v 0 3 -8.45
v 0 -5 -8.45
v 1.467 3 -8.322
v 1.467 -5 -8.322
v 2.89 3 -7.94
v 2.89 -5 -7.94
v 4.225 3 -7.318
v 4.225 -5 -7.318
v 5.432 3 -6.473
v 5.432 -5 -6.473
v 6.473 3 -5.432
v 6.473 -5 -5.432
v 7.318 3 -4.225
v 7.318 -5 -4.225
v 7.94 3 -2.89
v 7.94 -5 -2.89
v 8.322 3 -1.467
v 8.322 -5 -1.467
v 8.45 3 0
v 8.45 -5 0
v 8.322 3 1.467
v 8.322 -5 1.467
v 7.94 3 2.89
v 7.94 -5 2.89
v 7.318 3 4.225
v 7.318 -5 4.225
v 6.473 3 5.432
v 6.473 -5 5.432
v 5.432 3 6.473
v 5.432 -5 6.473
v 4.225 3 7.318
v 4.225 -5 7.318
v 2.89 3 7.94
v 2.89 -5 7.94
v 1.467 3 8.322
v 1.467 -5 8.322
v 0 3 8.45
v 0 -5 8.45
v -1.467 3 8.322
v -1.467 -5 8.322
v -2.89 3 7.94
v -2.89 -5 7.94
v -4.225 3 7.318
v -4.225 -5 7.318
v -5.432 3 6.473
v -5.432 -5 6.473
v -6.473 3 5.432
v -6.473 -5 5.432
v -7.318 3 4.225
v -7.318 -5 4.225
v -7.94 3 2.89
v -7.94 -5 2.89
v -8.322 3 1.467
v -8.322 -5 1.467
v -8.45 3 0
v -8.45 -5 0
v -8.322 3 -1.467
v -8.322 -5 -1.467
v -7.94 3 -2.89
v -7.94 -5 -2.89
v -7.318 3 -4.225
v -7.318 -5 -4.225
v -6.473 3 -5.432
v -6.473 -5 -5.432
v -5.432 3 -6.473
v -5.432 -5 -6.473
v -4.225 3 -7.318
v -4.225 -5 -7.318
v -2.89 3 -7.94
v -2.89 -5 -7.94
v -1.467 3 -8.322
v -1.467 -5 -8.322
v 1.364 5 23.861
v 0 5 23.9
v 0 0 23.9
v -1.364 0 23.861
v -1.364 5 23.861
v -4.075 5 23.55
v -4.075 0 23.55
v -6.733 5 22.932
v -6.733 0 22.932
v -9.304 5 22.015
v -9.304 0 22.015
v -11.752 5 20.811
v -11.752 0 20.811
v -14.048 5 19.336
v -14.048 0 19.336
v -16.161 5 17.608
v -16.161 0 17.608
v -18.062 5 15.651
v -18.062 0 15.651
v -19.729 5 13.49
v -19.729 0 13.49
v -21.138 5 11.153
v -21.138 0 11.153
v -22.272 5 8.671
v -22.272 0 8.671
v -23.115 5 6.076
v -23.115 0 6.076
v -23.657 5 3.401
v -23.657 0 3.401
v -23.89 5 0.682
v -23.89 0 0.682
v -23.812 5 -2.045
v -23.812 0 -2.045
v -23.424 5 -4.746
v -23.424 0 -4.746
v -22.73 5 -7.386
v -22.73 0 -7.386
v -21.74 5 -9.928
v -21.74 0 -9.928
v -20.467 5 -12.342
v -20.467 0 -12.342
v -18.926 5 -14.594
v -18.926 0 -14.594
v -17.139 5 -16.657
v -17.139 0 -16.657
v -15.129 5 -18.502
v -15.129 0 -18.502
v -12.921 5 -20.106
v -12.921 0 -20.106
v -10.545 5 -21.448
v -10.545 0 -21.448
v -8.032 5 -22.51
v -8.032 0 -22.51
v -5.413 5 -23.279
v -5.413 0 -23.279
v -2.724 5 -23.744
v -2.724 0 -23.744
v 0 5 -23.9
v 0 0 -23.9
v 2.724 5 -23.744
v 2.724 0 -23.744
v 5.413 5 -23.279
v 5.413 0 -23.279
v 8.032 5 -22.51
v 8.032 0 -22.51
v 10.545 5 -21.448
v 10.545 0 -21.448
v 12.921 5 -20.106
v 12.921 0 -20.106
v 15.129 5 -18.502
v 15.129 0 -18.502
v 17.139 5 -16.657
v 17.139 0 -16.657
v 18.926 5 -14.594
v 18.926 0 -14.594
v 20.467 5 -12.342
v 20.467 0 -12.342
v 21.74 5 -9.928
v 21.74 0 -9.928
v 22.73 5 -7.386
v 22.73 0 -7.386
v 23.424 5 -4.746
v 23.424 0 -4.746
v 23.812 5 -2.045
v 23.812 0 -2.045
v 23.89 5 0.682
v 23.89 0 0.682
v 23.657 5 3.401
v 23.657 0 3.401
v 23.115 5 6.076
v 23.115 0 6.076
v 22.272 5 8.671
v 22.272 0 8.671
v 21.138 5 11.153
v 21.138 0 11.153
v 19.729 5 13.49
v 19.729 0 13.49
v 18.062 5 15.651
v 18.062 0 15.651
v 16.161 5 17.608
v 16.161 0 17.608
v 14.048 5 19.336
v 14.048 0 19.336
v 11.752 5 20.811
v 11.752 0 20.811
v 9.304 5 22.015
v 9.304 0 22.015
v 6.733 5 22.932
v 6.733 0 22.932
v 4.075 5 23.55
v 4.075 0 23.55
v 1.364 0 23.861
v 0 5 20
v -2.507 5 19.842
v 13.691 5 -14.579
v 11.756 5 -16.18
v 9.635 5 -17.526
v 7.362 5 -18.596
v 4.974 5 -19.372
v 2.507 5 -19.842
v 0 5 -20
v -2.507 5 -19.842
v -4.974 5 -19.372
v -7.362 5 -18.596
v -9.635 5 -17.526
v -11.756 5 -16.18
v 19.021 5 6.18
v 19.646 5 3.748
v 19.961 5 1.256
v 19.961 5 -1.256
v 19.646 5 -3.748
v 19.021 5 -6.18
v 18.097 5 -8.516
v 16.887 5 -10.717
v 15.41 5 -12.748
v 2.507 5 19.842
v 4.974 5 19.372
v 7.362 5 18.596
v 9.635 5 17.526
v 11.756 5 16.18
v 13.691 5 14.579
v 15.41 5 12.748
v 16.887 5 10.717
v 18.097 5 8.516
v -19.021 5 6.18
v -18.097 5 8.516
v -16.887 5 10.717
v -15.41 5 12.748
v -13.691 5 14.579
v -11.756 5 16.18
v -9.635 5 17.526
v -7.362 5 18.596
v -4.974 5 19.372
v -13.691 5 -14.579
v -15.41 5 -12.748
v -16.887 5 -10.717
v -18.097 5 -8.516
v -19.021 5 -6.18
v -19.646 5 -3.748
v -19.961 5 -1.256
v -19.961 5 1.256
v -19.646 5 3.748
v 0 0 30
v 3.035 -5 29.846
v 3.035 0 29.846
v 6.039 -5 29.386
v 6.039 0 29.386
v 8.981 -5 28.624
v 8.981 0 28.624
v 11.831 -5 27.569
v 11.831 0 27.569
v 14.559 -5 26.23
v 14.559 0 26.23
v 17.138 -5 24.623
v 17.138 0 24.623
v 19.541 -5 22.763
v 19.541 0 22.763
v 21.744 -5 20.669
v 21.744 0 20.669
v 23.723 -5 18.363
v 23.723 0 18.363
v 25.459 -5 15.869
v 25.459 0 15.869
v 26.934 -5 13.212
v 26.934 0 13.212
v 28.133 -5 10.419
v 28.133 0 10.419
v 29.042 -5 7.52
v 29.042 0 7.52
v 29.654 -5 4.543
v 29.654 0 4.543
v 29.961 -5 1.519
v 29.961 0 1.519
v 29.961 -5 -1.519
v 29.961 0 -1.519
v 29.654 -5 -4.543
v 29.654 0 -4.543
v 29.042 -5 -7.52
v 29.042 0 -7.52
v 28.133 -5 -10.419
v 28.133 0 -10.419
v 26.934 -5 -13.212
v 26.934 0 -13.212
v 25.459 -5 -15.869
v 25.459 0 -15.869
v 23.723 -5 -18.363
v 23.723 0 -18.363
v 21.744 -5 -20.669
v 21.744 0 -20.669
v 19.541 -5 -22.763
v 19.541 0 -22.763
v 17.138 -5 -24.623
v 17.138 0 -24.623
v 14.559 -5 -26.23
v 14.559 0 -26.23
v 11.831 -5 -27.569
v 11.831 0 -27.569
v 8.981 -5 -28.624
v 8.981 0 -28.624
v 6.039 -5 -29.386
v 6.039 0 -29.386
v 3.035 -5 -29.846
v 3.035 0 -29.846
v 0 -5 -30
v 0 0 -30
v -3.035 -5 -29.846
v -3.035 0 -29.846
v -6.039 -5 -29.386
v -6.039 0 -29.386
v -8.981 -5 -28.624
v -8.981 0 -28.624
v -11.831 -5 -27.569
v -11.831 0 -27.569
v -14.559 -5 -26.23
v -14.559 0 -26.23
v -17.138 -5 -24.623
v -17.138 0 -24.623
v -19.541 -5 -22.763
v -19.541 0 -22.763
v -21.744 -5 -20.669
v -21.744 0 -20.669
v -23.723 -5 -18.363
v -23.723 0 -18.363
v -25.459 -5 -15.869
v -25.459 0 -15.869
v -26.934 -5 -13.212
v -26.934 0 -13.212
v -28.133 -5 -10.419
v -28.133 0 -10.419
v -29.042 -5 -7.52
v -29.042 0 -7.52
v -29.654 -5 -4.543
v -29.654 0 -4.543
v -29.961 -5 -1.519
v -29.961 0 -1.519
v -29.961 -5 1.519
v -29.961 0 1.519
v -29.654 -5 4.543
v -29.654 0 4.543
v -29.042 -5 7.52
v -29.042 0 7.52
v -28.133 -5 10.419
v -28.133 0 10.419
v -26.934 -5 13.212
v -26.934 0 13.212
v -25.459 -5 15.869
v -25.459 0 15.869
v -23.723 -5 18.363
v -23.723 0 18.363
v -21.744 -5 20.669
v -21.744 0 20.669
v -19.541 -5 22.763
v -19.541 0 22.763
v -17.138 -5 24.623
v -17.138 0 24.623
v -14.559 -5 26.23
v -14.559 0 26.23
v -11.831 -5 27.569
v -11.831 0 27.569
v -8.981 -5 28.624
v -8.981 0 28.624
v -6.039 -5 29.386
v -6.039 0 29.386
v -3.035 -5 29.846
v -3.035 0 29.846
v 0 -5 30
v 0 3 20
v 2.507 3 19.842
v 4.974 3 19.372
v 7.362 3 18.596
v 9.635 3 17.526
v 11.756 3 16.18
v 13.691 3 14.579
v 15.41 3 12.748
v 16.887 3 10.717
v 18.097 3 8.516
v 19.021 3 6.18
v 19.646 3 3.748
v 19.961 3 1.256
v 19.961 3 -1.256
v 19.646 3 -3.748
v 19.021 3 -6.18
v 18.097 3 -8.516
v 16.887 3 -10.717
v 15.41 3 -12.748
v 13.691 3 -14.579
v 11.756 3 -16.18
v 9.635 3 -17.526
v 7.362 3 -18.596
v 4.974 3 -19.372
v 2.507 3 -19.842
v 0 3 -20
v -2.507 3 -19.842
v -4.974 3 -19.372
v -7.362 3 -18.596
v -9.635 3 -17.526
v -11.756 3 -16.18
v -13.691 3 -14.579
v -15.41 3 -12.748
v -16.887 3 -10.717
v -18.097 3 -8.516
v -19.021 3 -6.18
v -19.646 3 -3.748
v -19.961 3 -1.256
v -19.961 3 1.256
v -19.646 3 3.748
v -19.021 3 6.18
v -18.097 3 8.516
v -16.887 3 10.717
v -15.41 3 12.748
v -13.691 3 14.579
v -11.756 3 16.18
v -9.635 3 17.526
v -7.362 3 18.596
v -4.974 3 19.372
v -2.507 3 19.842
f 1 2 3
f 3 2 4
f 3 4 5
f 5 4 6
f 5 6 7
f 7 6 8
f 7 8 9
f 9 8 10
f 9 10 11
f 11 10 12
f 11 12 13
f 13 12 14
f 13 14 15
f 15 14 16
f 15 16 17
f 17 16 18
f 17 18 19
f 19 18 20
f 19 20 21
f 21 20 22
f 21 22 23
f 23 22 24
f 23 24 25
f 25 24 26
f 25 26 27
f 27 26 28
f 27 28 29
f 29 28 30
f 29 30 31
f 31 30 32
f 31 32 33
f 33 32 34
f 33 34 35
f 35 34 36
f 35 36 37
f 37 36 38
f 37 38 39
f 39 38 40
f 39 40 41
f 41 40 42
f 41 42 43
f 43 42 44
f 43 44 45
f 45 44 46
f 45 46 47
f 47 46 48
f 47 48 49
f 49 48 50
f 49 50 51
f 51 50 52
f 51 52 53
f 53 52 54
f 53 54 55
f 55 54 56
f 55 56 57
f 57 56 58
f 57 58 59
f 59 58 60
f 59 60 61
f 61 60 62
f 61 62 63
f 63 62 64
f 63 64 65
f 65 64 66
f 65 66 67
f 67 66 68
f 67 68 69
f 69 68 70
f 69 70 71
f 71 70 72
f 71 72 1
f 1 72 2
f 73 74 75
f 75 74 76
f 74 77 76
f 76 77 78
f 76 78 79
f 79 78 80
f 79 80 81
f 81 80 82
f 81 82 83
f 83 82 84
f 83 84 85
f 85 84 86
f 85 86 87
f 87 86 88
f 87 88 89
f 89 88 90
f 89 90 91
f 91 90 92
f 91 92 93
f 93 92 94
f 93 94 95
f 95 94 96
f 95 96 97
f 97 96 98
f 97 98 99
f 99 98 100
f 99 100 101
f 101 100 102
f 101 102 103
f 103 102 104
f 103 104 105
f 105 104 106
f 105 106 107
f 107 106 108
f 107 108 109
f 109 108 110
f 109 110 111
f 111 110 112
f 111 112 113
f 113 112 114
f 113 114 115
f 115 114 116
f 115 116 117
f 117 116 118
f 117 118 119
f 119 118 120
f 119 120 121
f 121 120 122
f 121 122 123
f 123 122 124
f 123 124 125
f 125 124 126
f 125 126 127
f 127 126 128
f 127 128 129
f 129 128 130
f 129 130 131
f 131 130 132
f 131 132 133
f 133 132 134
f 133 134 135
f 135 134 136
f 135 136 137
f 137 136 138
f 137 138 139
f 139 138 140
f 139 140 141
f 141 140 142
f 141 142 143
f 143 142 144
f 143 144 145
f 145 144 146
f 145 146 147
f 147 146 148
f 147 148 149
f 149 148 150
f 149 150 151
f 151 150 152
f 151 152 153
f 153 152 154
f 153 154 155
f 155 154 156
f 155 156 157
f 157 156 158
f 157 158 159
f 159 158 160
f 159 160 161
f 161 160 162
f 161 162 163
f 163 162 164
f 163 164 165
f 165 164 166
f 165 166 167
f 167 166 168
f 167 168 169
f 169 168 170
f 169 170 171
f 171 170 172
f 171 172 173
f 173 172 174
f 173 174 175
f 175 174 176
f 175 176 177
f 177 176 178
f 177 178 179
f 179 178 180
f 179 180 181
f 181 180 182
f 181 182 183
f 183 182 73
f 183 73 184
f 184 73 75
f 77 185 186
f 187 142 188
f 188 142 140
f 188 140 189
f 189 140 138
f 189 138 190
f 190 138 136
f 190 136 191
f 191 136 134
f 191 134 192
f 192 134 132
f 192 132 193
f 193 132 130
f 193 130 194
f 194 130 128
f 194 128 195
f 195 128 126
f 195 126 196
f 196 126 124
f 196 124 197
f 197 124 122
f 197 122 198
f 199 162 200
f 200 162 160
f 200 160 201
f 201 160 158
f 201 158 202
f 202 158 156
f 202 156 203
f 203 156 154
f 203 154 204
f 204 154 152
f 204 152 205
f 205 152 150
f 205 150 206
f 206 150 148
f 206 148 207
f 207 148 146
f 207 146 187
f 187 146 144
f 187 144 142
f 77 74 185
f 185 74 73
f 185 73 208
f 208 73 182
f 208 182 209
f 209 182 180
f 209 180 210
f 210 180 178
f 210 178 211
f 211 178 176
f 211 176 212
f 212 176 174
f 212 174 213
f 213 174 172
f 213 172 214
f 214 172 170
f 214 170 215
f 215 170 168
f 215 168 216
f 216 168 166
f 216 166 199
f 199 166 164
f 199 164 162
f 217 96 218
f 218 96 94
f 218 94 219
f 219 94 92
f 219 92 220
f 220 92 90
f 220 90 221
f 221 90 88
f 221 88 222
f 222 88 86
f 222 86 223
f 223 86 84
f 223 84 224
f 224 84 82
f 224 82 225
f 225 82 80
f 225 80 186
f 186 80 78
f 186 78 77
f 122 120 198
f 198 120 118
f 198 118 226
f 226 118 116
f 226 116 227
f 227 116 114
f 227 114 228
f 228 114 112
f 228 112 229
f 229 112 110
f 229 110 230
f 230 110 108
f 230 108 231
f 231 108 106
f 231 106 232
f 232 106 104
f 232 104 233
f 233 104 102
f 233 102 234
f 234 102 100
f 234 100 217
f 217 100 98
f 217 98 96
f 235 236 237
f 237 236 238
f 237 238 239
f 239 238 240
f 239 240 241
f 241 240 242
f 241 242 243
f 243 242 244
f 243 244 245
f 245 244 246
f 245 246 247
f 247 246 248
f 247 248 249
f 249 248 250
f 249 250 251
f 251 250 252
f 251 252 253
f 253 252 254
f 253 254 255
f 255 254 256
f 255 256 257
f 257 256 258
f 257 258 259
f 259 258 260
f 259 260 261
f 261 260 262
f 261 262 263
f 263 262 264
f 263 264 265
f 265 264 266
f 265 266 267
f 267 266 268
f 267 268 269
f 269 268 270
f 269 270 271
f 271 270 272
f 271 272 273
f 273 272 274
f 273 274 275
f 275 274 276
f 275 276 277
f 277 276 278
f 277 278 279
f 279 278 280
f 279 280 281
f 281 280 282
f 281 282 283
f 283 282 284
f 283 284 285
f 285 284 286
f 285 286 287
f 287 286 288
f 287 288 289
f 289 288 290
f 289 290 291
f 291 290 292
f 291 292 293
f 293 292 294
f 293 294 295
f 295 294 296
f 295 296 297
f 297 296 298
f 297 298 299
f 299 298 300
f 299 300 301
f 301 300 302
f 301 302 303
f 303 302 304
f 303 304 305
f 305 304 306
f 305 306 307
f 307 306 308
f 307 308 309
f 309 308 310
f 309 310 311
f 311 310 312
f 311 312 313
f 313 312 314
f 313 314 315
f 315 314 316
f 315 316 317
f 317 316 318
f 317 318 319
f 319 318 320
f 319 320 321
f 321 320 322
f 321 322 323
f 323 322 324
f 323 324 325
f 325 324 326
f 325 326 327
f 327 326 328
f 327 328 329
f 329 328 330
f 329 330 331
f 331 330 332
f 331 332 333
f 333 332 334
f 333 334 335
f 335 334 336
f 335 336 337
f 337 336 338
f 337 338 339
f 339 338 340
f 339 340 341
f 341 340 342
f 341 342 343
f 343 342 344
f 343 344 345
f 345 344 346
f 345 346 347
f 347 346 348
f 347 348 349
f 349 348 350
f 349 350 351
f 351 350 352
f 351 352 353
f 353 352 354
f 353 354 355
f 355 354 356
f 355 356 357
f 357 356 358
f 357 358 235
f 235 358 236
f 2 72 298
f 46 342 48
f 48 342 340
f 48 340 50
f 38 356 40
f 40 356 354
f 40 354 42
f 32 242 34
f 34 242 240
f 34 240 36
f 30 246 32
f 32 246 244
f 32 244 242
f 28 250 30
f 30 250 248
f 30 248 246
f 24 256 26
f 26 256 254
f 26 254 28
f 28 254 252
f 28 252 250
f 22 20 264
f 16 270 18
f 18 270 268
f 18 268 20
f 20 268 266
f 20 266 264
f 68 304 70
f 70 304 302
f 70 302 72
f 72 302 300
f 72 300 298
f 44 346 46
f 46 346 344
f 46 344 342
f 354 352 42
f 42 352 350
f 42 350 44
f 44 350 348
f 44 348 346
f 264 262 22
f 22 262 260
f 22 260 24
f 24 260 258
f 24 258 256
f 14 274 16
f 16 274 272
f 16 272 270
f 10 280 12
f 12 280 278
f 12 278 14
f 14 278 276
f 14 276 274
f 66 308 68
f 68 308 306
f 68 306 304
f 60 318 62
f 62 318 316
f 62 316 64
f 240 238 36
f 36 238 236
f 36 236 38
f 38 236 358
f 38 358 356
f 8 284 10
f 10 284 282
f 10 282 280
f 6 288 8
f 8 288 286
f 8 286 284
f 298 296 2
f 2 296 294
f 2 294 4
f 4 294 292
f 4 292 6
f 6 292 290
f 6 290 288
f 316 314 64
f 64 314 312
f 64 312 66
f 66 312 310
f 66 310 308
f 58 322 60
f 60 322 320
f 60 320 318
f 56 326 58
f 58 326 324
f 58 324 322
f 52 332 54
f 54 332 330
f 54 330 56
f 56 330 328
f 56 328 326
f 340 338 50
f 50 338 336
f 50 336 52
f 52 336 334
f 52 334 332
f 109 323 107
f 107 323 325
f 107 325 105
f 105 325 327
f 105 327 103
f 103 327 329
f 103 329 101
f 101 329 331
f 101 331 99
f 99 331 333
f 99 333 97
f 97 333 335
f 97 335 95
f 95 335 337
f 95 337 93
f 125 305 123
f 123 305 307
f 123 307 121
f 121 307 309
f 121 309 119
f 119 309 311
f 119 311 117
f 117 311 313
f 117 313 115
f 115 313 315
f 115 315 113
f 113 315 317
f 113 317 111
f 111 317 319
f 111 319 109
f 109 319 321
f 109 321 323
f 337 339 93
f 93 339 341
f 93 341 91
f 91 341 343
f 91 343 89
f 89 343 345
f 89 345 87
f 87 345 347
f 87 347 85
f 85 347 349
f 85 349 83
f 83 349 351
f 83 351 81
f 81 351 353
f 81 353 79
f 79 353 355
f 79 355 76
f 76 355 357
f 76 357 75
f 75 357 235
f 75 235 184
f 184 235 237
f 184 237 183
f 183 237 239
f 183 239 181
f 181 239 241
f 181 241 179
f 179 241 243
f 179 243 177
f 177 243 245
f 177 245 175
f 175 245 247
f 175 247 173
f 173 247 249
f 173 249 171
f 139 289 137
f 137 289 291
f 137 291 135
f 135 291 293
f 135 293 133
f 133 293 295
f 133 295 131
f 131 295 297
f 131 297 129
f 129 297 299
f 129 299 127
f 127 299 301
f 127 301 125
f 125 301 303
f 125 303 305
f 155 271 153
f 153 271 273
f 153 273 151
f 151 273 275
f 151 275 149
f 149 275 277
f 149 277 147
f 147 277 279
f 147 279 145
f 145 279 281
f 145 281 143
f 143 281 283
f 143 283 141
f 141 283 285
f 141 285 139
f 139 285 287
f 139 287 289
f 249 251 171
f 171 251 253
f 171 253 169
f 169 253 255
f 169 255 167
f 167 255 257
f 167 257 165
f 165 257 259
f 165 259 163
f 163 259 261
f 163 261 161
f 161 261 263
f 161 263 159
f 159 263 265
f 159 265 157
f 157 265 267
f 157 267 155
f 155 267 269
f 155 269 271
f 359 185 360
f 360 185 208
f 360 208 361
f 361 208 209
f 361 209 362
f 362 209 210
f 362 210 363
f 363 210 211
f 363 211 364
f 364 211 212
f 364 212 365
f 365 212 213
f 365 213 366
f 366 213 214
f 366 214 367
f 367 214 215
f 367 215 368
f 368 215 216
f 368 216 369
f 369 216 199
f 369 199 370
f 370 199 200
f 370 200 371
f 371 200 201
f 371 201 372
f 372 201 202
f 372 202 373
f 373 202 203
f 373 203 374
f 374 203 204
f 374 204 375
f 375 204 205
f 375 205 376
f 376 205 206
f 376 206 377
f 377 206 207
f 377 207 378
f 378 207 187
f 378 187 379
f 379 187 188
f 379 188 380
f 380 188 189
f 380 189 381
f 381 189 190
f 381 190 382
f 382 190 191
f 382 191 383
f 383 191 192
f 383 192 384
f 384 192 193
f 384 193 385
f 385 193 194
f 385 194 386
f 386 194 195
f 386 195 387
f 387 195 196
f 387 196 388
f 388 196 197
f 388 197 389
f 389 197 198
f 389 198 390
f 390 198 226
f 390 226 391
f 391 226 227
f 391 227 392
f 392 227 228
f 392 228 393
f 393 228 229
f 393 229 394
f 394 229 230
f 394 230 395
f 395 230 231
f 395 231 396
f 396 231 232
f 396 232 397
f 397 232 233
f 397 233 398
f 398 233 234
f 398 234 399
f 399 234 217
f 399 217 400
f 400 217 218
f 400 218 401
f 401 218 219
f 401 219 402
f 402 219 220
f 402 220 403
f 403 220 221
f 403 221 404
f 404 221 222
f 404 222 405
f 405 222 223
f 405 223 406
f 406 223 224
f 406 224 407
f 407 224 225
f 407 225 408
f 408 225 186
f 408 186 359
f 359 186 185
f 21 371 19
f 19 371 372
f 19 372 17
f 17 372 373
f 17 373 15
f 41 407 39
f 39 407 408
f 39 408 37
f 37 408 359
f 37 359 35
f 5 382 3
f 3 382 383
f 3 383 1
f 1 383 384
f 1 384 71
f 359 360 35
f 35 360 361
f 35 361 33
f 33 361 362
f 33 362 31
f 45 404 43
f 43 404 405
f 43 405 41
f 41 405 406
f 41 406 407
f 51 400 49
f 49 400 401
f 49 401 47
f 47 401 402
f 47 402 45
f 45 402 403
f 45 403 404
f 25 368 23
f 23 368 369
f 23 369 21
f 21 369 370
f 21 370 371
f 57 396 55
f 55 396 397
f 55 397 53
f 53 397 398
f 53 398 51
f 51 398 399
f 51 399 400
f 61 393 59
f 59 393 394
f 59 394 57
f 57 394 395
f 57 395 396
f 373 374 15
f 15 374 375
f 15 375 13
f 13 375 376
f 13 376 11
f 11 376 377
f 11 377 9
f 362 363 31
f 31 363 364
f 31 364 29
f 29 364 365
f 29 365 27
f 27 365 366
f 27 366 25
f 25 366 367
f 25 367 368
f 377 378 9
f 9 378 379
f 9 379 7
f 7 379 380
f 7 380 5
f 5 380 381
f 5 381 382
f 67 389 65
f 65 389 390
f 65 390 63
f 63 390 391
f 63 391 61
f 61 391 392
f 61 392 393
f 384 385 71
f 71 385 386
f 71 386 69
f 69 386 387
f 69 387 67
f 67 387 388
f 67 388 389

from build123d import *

# Parameters (mm, degrees)
CROQUIS1_R              = 23.9
CROQUIS1_R_2            = 8.45
SALIENTE_EXTRUIR1_DEPTH = 5
SALIENTE_EXTRUIR2_START = -5
CROQUIS1_3_R            = 30
CROQUIS1_3_R_2          = 8.45
SALIENTE_EXTRUIR2_DEPTH = 5
CROQUIS2_R              = 20
CORTAR_EXTRUIR1_DEPTH   = 2


with BuildPart() as part:
    # Croquis1 → Saliente-Extruir1 (new body)
    with BuildSketch(Plane(origin=(0, 0, 0), x_dir=(1, 0, 0), z_dir=(0, 1, 0))):
        Circle(CROQUIS1_R)
        Circle(CROQUIS1_R_2, mode=Mode.SUBTRACT)
    extrude(amount=SALIENTE_EXTRUIR1_DEPTH)

    # Croquis1<3> → Saliente-Extruir2 (add)
    with BuildSketch(Plane(origin=(0, 0, 0), x_dir=(1, 0, 0), z_dir=(0, 1, 0)).offset(SALIENTE_EXTRUIR2_START)):
        Circle(CROQUIS1_3_R)
        Circle(CROQUIS1_3_R_2, mode=Mode.SUBTRACT)
    extrude(amount=SALIENTE_EXTRUIR2_DEPTH)

    # Croquis2 → Cortar-Extruir1 (cut)
    with BuildSketch(Plane(origin=(0, 5, 0), x_dir=(1, 0, 0), z_dir=(0, 1, 0))):
        Circle(CROQUIS2_R)
    extrude(amount=-CORTAR_EXTRUIR1_DEPTH, mode=Mode.SUBTRACT)


solid = part.part
